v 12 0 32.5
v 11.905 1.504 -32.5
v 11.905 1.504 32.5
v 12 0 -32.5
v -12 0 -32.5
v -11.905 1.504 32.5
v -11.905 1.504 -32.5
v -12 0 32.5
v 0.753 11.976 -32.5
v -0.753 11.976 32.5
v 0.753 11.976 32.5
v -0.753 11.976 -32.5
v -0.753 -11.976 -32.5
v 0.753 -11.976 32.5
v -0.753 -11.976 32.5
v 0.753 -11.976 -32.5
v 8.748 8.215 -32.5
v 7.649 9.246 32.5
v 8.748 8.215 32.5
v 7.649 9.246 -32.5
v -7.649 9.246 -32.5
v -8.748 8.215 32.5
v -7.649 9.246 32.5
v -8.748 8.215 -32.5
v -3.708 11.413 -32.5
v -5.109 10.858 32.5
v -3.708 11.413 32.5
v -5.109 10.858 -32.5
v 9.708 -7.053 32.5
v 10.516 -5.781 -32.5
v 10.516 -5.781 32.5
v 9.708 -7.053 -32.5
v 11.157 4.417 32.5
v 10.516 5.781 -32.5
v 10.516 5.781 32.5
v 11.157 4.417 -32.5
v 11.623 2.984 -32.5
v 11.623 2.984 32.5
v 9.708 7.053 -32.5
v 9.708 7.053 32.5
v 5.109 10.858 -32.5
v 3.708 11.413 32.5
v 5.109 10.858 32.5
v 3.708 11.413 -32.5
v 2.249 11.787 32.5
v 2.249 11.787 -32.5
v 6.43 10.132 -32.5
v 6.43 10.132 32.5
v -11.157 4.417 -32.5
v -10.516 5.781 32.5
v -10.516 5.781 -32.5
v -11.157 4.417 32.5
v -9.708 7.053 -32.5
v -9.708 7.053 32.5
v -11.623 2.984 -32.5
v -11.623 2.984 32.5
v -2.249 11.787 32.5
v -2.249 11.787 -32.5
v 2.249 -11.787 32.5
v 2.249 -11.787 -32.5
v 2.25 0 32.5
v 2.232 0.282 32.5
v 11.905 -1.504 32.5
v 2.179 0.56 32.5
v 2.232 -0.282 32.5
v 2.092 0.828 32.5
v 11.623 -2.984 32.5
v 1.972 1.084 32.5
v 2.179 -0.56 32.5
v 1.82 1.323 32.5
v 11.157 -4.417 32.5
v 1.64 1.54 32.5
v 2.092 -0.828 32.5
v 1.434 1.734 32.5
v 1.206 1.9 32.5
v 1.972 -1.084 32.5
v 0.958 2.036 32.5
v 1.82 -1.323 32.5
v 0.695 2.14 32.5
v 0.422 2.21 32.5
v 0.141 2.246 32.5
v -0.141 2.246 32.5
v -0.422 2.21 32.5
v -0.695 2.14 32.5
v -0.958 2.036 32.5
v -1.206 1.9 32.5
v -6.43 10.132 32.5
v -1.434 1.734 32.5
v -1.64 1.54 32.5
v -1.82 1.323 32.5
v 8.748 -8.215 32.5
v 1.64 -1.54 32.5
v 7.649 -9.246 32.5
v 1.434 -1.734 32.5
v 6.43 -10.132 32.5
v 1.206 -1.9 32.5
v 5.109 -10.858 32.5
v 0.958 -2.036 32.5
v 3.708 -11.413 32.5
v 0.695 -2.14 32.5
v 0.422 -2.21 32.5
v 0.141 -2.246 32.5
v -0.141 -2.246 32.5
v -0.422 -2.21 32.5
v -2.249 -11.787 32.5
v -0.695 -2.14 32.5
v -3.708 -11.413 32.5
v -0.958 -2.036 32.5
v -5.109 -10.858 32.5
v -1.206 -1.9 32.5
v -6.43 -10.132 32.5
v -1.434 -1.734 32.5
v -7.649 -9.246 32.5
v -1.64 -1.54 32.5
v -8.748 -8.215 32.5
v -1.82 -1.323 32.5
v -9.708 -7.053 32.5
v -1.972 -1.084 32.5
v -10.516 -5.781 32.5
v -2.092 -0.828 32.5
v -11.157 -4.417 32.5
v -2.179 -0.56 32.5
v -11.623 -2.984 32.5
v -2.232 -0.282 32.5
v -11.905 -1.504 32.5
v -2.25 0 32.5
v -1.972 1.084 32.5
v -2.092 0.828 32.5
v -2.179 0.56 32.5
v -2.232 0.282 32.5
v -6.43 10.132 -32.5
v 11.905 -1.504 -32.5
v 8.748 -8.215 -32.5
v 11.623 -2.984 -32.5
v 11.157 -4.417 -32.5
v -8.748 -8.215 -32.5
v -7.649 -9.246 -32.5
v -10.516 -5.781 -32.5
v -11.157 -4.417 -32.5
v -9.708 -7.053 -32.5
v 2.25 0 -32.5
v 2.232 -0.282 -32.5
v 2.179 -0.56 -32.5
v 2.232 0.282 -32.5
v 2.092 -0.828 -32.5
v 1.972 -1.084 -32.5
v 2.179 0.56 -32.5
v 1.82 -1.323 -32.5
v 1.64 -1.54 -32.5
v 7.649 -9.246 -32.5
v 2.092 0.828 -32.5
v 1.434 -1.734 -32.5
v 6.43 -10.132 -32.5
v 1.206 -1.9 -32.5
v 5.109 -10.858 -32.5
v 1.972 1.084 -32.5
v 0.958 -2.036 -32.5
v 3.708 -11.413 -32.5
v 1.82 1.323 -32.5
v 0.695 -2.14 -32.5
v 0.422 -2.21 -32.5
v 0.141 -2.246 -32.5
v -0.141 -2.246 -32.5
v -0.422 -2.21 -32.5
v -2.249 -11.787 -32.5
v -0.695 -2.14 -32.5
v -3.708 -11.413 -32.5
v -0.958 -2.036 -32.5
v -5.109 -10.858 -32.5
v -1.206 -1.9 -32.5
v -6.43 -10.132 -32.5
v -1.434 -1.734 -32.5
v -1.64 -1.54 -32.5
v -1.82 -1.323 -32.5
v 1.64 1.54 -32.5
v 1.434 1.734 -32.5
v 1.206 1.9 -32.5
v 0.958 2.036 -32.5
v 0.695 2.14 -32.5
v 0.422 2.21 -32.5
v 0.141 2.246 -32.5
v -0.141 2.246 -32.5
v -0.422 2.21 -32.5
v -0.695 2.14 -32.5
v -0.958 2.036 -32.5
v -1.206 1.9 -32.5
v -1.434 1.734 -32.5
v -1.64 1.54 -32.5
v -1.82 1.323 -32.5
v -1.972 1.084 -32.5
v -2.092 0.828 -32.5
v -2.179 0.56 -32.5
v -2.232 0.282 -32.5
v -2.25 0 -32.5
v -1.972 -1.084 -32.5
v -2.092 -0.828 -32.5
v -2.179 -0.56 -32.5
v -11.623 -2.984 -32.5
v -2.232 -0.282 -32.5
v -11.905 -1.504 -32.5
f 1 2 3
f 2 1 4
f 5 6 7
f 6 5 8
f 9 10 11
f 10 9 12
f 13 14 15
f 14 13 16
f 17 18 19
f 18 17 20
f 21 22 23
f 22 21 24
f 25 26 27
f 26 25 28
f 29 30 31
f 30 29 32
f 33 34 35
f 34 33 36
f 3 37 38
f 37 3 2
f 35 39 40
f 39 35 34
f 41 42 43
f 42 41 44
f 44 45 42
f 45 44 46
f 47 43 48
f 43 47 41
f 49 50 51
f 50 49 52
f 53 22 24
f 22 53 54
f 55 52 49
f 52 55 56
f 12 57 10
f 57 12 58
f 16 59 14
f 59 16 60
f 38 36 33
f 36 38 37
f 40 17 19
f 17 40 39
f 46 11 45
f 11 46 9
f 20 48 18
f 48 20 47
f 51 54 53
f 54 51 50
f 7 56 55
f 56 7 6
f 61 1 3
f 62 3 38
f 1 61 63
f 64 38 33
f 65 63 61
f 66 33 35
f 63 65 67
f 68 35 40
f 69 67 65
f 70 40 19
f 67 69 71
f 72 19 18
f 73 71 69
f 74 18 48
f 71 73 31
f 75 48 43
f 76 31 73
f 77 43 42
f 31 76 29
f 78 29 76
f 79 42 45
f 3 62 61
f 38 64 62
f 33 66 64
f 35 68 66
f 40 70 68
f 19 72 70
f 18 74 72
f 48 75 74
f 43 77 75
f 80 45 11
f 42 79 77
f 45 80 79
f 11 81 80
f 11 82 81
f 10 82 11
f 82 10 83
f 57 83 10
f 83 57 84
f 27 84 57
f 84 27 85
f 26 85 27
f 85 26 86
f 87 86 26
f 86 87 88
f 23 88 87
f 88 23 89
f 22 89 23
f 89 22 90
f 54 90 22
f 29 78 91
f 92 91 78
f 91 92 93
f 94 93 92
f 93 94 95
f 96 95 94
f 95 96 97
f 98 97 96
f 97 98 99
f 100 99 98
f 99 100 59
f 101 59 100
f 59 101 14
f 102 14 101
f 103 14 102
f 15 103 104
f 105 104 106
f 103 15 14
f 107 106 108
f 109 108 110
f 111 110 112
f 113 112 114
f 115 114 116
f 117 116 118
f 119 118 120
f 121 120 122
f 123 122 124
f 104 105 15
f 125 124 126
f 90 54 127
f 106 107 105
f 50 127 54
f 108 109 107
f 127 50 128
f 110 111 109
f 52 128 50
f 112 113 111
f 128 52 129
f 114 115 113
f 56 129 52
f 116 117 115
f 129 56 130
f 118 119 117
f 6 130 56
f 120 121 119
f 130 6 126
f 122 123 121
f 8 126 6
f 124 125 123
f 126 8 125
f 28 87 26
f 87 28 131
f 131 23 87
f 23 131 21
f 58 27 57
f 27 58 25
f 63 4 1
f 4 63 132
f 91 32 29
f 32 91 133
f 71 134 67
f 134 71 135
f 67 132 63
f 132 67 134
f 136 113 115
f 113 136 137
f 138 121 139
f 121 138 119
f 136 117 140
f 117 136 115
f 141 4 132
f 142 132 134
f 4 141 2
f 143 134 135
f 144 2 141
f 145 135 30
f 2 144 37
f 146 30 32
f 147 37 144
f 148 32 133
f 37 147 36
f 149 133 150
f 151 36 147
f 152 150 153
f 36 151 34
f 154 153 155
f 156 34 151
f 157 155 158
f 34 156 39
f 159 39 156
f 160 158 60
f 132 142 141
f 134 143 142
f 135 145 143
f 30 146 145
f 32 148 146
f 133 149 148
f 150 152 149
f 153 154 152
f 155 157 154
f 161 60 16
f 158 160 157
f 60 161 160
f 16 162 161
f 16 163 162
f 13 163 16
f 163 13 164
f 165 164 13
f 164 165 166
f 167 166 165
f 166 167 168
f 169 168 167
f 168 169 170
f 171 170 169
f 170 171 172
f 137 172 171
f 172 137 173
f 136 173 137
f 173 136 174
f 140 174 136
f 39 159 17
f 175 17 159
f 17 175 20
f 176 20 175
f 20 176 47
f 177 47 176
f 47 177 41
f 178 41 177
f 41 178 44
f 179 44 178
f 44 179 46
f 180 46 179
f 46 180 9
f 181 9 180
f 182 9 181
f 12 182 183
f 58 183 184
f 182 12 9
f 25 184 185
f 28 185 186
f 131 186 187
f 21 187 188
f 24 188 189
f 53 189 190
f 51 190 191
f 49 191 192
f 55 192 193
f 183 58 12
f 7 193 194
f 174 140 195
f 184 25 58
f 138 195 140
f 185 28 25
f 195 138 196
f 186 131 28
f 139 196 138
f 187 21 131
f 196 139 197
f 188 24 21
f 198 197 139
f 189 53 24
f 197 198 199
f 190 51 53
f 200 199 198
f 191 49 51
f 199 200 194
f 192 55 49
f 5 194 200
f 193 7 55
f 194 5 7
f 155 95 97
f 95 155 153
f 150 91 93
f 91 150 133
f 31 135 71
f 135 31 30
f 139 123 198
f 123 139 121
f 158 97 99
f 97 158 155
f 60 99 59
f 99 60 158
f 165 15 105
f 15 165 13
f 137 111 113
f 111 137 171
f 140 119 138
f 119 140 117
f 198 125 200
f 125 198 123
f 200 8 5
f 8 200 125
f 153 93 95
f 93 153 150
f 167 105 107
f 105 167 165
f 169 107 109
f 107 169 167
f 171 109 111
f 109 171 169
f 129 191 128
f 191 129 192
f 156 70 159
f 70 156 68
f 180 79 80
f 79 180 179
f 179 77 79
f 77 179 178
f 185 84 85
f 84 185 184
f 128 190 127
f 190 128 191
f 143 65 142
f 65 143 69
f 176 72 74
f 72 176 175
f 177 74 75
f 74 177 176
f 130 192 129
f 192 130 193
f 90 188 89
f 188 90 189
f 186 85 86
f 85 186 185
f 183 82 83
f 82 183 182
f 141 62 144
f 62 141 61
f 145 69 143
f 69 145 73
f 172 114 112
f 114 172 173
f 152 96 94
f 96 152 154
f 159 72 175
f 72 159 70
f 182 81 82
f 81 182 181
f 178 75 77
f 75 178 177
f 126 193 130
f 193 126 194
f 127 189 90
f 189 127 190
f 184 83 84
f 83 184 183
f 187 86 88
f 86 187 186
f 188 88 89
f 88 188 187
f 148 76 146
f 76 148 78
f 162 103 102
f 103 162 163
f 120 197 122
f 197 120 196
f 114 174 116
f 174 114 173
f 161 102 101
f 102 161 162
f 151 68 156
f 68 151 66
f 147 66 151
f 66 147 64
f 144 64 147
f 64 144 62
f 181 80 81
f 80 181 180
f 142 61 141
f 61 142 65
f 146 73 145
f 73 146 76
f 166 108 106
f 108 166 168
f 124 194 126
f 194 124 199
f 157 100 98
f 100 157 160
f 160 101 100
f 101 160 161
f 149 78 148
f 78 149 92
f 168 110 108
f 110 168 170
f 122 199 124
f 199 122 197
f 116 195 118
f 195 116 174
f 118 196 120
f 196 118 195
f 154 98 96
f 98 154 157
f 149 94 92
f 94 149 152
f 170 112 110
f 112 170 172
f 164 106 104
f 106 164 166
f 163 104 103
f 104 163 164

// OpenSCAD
$fn = 50;


difference() {
	union() {
		translate(v = [0, 0, -32.5000000000]) {
			cylinder(h = 65, r = 12.0000000000);
		}
	}
	union() {
		translate(v = [0, 0, -100.0000000000]) {
			cylinder(h = 200, r = 2.2500000000);
		}
	}
}
